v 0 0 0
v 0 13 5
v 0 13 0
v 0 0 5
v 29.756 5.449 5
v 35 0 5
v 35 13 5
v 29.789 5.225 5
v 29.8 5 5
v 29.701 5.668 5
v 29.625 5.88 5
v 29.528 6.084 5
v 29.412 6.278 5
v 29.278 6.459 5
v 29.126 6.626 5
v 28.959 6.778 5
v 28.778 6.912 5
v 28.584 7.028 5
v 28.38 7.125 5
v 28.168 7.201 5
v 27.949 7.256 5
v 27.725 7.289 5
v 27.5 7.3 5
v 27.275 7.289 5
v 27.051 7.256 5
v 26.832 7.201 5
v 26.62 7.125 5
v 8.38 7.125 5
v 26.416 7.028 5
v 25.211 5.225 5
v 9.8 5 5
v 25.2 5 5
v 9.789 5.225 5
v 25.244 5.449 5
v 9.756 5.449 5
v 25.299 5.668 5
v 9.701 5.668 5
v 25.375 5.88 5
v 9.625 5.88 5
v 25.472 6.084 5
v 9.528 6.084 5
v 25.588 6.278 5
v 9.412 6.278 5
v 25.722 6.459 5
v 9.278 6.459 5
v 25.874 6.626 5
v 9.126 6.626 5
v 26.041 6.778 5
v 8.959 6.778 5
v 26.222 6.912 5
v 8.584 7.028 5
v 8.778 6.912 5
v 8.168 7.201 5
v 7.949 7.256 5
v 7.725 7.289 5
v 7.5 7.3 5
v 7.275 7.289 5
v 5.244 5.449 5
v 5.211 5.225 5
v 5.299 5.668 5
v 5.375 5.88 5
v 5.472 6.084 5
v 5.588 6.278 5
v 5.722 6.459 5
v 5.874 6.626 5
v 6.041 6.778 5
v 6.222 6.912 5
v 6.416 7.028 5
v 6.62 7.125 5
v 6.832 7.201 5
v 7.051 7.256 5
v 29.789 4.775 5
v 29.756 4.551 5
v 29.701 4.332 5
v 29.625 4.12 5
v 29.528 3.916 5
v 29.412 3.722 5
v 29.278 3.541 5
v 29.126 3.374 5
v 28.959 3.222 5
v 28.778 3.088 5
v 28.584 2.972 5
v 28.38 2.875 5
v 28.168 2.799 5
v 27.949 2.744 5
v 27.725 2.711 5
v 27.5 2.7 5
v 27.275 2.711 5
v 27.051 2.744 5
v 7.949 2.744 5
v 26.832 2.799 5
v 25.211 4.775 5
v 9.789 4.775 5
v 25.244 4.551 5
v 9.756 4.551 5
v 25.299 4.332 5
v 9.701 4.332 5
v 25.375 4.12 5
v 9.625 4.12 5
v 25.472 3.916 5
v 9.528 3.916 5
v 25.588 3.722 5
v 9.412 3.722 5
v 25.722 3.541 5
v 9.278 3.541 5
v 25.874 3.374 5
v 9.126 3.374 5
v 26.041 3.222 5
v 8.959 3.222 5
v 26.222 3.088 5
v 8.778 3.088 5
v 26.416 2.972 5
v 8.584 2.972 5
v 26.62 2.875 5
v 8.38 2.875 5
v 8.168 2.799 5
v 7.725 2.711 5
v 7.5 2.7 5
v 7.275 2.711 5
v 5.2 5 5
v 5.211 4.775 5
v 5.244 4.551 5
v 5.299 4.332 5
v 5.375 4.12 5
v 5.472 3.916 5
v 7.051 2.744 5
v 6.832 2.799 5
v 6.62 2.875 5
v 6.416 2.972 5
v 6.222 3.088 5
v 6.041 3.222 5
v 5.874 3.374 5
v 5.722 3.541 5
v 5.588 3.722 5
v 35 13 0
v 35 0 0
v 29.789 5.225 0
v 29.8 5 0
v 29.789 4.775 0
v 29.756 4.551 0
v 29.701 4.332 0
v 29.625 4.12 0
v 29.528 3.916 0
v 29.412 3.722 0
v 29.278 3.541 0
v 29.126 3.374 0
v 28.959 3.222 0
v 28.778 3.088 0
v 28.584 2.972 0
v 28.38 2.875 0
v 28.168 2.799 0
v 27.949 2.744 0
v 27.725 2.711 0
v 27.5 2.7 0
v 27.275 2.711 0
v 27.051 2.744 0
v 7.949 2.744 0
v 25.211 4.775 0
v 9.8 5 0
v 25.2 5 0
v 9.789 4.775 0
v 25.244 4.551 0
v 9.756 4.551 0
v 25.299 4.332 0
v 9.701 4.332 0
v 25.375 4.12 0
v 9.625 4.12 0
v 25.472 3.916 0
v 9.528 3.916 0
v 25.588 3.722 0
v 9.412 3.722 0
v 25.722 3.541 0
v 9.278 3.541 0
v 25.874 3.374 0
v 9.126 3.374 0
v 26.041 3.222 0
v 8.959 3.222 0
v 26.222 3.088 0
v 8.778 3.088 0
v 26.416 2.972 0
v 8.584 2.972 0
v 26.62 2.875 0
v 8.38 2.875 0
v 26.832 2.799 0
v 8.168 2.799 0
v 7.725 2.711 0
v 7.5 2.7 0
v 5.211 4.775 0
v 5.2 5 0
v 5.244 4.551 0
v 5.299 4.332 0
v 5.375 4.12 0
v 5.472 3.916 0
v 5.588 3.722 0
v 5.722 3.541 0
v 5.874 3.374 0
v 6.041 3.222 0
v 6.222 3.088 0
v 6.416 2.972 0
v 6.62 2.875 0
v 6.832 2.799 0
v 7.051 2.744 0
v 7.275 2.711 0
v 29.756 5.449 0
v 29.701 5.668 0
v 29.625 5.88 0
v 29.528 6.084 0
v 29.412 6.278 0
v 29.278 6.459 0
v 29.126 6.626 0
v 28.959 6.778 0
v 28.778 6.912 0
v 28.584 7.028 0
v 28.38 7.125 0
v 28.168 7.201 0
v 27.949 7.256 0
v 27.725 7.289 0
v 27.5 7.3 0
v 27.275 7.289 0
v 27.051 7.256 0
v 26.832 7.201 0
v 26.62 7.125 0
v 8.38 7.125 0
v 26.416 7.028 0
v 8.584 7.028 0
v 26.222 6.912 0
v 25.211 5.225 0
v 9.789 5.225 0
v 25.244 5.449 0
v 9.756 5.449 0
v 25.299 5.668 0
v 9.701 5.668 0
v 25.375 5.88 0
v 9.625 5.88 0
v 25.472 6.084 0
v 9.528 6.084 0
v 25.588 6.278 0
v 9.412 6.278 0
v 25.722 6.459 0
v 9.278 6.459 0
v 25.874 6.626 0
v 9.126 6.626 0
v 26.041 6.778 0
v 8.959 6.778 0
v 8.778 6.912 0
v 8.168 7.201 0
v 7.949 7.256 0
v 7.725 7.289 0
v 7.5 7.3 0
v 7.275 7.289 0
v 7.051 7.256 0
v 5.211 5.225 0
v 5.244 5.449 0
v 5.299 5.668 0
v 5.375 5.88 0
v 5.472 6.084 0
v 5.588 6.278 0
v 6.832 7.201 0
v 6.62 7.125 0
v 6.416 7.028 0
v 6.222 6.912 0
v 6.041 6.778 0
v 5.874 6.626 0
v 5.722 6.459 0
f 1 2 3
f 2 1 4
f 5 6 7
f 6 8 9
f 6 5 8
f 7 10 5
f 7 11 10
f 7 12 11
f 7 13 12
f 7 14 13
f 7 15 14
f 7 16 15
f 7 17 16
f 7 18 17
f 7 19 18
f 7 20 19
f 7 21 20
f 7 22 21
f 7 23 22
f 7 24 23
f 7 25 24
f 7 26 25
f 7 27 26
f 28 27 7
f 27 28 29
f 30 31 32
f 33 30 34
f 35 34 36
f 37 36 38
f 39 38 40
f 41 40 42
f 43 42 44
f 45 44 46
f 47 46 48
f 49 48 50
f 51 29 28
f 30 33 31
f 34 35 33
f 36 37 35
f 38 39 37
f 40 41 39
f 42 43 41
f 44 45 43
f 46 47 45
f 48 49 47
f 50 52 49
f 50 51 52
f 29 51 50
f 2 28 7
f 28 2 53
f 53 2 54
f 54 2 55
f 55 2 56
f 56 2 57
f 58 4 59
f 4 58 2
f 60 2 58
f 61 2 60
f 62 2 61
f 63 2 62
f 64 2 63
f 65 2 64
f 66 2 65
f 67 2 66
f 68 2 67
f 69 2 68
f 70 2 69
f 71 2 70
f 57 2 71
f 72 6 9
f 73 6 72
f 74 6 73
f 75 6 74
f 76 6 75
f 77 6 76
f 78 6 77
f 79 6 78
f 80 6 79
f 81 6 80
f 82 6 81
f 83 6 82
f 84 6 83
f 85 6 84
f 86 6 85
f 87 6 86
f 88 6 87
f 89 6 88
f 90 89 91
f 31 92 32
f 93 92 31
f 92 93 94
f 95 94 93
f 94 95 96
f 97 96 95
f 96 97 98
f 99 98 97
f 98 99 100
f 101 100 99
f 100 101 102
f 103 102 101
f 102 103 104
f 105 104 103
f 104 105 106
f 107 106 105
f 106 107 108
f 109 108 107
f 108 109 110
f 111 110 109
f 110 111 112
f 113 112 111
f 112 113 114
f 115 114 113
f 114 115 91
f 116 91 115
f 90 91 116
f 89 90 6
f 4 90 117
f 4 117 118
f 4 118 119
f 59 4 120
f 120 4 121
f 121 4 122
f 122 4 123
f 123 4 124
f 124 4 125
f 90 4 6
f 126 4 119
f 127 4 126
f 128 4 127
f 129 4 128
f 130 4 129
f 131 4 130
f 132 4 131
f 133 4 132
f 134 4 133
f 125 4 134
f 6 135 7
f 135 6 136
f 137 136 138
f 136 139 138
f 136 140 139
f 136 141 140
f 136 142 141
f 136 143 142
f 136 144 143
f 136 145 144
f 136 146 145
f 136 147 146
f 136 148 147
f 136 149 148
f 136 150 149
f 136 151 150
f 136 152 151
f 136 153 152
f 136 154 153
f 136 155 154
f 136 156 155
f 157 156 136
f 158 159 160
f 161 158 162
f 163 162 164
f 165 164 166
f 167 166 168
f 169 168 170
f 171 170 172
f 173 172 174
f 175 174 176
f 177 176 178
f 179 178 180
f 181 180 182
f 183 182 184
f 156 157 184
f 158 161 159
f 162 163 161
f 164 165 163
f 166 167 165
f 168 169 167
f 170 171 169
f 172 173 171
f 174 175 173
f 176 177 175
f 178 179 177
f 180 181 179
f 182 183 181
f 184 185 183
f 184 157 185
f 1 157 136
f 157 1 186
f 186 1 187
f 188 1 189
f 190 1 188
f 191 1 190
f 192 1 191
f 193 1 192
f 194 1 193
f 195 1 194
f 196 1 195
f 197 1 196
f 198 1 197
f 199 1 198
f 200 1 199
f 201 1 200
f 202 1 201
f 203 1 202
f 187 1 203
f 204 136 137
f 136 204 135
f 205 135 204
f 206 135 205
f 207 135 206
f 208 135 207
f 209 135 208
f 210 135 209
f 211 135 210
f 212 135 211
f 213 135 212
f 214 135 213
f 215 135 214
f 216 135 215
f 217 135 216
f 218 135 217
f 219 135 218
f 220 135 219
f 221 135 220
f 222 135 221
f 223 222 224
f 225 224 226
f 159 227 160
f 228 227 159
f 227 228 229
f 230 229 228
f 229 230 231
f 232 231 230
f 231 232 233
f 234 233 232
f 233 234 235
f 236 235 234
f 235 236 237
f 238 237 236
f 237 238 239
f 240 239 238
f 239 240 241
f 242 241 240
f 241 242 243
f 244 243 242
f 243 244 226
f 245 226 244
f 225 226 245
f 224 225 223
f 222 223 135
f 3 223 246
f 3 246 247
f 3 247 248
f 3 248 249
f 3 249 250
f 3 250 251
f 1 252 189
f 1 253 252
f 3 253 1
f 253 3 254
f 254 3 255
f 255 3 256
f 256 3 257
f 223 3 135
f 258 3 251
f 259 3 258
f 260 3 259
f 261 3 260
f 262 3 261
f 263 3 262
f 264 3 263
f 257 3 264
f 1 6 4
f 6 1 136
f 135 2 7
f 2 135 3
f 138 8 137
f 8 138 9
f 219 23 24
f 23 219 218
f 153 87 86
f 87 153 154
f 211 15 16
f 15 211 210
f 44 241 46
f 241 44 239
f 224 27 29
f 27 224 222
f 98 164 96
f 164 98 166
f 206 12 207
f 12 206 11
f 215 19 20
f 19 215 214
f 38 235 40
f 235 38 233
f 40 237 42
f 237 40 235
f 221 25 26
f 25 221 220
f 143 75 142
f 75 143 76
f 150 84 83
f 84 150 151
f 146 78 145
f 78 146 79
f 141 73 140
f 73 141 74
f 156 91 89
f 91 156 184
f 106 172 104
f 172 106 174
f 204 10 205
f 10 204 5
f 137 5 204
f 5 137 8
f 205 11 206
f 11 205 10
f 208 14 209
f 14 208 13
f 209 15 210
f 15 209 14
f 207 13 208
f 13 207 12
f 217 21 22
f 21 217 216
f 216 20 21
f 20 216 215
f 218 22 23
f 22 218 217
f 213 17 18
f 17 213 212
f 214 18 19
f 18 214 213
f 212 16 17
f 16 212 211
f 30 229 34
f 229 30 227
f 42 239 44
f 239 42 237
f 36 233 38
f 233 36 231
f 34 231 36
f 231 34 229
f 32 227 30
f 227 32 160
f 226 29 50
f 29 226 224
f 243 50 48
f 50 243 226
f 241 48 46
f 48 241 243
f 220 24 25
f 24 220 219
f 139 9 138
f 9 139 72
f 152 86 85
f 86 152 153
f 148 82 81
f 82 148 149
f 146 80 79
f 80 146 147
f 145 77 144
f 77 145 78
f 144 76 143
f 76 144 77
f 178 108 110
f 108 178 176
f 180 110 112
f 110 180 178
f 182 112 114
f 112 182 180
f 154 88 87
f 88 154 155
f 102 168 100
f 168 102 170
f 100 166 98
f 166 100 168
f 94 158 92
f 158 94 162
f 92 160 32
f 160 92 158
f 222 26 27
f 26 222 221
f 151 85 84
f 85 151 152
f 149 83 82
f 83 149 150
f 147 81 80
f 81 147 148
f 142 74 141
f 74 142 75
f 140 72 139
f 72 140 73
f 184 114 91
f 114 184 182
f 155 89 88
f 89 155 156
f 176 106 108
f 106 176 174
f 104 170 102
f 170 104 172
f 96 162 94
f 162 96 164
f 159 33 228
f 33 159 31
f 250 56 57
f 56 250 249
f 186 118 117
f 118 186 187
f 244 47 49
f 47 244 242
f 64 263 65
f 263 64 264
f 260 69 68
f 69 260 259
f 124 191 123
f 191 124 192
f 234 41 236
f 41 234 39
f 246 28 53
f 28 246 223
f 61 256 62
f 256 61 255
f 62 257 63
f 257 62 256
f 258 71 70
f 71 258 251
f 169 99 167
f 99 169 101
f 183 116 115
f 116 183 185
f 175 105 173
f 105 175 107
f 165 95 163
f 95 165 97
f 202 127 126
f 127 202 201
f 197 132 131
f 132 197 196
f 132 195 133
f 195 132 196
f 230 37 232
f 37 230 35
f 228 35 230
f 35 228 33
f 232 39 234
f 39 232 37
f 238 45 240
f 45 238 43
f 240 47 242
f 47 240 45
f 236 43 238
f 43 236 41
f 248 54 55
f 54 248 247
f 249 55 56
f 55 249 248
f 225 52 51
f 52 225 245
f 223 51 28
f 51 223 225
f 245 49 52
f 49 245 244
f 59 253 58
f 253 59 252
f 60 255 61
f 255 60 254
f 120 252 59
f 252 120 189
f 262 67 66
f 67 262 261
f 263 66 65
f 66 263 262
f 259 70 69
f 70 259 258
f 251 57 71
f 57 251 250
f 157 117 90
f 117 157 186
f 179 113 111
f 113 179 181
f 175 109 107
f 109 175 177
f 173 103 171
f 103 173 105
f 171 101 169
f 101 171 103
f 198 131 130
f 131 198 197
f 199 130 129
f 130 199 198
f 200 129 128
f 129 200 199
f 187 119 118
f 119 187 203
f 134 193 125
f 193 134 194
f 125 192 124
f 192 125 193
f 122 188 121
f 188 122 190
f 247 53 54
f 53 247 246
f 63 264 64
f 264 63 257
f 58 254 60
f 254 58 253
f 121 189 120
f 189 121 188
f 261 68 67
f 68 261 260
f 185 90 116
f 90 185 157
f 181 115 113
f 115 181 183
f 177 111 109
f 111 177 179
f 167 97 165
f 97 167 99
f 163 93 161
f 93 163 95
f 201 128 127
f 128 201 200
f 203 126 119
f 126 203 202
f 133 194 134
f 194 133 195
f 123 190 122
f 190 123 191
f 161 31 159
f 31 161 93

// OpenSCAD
wd = 35;
lt = 13;
difference(){
union(){
translate([0,0,0]) cube([wd,lt,5]);
}

translate([(wd/2)+10,lt/2-1.5,0]) cylinder(r=2.3,h=10,$fn=64);
translate([(wd/2)-10,lt/2-1.5,0]) cylinder(r=2.3,h=10,$fn=64);
}
